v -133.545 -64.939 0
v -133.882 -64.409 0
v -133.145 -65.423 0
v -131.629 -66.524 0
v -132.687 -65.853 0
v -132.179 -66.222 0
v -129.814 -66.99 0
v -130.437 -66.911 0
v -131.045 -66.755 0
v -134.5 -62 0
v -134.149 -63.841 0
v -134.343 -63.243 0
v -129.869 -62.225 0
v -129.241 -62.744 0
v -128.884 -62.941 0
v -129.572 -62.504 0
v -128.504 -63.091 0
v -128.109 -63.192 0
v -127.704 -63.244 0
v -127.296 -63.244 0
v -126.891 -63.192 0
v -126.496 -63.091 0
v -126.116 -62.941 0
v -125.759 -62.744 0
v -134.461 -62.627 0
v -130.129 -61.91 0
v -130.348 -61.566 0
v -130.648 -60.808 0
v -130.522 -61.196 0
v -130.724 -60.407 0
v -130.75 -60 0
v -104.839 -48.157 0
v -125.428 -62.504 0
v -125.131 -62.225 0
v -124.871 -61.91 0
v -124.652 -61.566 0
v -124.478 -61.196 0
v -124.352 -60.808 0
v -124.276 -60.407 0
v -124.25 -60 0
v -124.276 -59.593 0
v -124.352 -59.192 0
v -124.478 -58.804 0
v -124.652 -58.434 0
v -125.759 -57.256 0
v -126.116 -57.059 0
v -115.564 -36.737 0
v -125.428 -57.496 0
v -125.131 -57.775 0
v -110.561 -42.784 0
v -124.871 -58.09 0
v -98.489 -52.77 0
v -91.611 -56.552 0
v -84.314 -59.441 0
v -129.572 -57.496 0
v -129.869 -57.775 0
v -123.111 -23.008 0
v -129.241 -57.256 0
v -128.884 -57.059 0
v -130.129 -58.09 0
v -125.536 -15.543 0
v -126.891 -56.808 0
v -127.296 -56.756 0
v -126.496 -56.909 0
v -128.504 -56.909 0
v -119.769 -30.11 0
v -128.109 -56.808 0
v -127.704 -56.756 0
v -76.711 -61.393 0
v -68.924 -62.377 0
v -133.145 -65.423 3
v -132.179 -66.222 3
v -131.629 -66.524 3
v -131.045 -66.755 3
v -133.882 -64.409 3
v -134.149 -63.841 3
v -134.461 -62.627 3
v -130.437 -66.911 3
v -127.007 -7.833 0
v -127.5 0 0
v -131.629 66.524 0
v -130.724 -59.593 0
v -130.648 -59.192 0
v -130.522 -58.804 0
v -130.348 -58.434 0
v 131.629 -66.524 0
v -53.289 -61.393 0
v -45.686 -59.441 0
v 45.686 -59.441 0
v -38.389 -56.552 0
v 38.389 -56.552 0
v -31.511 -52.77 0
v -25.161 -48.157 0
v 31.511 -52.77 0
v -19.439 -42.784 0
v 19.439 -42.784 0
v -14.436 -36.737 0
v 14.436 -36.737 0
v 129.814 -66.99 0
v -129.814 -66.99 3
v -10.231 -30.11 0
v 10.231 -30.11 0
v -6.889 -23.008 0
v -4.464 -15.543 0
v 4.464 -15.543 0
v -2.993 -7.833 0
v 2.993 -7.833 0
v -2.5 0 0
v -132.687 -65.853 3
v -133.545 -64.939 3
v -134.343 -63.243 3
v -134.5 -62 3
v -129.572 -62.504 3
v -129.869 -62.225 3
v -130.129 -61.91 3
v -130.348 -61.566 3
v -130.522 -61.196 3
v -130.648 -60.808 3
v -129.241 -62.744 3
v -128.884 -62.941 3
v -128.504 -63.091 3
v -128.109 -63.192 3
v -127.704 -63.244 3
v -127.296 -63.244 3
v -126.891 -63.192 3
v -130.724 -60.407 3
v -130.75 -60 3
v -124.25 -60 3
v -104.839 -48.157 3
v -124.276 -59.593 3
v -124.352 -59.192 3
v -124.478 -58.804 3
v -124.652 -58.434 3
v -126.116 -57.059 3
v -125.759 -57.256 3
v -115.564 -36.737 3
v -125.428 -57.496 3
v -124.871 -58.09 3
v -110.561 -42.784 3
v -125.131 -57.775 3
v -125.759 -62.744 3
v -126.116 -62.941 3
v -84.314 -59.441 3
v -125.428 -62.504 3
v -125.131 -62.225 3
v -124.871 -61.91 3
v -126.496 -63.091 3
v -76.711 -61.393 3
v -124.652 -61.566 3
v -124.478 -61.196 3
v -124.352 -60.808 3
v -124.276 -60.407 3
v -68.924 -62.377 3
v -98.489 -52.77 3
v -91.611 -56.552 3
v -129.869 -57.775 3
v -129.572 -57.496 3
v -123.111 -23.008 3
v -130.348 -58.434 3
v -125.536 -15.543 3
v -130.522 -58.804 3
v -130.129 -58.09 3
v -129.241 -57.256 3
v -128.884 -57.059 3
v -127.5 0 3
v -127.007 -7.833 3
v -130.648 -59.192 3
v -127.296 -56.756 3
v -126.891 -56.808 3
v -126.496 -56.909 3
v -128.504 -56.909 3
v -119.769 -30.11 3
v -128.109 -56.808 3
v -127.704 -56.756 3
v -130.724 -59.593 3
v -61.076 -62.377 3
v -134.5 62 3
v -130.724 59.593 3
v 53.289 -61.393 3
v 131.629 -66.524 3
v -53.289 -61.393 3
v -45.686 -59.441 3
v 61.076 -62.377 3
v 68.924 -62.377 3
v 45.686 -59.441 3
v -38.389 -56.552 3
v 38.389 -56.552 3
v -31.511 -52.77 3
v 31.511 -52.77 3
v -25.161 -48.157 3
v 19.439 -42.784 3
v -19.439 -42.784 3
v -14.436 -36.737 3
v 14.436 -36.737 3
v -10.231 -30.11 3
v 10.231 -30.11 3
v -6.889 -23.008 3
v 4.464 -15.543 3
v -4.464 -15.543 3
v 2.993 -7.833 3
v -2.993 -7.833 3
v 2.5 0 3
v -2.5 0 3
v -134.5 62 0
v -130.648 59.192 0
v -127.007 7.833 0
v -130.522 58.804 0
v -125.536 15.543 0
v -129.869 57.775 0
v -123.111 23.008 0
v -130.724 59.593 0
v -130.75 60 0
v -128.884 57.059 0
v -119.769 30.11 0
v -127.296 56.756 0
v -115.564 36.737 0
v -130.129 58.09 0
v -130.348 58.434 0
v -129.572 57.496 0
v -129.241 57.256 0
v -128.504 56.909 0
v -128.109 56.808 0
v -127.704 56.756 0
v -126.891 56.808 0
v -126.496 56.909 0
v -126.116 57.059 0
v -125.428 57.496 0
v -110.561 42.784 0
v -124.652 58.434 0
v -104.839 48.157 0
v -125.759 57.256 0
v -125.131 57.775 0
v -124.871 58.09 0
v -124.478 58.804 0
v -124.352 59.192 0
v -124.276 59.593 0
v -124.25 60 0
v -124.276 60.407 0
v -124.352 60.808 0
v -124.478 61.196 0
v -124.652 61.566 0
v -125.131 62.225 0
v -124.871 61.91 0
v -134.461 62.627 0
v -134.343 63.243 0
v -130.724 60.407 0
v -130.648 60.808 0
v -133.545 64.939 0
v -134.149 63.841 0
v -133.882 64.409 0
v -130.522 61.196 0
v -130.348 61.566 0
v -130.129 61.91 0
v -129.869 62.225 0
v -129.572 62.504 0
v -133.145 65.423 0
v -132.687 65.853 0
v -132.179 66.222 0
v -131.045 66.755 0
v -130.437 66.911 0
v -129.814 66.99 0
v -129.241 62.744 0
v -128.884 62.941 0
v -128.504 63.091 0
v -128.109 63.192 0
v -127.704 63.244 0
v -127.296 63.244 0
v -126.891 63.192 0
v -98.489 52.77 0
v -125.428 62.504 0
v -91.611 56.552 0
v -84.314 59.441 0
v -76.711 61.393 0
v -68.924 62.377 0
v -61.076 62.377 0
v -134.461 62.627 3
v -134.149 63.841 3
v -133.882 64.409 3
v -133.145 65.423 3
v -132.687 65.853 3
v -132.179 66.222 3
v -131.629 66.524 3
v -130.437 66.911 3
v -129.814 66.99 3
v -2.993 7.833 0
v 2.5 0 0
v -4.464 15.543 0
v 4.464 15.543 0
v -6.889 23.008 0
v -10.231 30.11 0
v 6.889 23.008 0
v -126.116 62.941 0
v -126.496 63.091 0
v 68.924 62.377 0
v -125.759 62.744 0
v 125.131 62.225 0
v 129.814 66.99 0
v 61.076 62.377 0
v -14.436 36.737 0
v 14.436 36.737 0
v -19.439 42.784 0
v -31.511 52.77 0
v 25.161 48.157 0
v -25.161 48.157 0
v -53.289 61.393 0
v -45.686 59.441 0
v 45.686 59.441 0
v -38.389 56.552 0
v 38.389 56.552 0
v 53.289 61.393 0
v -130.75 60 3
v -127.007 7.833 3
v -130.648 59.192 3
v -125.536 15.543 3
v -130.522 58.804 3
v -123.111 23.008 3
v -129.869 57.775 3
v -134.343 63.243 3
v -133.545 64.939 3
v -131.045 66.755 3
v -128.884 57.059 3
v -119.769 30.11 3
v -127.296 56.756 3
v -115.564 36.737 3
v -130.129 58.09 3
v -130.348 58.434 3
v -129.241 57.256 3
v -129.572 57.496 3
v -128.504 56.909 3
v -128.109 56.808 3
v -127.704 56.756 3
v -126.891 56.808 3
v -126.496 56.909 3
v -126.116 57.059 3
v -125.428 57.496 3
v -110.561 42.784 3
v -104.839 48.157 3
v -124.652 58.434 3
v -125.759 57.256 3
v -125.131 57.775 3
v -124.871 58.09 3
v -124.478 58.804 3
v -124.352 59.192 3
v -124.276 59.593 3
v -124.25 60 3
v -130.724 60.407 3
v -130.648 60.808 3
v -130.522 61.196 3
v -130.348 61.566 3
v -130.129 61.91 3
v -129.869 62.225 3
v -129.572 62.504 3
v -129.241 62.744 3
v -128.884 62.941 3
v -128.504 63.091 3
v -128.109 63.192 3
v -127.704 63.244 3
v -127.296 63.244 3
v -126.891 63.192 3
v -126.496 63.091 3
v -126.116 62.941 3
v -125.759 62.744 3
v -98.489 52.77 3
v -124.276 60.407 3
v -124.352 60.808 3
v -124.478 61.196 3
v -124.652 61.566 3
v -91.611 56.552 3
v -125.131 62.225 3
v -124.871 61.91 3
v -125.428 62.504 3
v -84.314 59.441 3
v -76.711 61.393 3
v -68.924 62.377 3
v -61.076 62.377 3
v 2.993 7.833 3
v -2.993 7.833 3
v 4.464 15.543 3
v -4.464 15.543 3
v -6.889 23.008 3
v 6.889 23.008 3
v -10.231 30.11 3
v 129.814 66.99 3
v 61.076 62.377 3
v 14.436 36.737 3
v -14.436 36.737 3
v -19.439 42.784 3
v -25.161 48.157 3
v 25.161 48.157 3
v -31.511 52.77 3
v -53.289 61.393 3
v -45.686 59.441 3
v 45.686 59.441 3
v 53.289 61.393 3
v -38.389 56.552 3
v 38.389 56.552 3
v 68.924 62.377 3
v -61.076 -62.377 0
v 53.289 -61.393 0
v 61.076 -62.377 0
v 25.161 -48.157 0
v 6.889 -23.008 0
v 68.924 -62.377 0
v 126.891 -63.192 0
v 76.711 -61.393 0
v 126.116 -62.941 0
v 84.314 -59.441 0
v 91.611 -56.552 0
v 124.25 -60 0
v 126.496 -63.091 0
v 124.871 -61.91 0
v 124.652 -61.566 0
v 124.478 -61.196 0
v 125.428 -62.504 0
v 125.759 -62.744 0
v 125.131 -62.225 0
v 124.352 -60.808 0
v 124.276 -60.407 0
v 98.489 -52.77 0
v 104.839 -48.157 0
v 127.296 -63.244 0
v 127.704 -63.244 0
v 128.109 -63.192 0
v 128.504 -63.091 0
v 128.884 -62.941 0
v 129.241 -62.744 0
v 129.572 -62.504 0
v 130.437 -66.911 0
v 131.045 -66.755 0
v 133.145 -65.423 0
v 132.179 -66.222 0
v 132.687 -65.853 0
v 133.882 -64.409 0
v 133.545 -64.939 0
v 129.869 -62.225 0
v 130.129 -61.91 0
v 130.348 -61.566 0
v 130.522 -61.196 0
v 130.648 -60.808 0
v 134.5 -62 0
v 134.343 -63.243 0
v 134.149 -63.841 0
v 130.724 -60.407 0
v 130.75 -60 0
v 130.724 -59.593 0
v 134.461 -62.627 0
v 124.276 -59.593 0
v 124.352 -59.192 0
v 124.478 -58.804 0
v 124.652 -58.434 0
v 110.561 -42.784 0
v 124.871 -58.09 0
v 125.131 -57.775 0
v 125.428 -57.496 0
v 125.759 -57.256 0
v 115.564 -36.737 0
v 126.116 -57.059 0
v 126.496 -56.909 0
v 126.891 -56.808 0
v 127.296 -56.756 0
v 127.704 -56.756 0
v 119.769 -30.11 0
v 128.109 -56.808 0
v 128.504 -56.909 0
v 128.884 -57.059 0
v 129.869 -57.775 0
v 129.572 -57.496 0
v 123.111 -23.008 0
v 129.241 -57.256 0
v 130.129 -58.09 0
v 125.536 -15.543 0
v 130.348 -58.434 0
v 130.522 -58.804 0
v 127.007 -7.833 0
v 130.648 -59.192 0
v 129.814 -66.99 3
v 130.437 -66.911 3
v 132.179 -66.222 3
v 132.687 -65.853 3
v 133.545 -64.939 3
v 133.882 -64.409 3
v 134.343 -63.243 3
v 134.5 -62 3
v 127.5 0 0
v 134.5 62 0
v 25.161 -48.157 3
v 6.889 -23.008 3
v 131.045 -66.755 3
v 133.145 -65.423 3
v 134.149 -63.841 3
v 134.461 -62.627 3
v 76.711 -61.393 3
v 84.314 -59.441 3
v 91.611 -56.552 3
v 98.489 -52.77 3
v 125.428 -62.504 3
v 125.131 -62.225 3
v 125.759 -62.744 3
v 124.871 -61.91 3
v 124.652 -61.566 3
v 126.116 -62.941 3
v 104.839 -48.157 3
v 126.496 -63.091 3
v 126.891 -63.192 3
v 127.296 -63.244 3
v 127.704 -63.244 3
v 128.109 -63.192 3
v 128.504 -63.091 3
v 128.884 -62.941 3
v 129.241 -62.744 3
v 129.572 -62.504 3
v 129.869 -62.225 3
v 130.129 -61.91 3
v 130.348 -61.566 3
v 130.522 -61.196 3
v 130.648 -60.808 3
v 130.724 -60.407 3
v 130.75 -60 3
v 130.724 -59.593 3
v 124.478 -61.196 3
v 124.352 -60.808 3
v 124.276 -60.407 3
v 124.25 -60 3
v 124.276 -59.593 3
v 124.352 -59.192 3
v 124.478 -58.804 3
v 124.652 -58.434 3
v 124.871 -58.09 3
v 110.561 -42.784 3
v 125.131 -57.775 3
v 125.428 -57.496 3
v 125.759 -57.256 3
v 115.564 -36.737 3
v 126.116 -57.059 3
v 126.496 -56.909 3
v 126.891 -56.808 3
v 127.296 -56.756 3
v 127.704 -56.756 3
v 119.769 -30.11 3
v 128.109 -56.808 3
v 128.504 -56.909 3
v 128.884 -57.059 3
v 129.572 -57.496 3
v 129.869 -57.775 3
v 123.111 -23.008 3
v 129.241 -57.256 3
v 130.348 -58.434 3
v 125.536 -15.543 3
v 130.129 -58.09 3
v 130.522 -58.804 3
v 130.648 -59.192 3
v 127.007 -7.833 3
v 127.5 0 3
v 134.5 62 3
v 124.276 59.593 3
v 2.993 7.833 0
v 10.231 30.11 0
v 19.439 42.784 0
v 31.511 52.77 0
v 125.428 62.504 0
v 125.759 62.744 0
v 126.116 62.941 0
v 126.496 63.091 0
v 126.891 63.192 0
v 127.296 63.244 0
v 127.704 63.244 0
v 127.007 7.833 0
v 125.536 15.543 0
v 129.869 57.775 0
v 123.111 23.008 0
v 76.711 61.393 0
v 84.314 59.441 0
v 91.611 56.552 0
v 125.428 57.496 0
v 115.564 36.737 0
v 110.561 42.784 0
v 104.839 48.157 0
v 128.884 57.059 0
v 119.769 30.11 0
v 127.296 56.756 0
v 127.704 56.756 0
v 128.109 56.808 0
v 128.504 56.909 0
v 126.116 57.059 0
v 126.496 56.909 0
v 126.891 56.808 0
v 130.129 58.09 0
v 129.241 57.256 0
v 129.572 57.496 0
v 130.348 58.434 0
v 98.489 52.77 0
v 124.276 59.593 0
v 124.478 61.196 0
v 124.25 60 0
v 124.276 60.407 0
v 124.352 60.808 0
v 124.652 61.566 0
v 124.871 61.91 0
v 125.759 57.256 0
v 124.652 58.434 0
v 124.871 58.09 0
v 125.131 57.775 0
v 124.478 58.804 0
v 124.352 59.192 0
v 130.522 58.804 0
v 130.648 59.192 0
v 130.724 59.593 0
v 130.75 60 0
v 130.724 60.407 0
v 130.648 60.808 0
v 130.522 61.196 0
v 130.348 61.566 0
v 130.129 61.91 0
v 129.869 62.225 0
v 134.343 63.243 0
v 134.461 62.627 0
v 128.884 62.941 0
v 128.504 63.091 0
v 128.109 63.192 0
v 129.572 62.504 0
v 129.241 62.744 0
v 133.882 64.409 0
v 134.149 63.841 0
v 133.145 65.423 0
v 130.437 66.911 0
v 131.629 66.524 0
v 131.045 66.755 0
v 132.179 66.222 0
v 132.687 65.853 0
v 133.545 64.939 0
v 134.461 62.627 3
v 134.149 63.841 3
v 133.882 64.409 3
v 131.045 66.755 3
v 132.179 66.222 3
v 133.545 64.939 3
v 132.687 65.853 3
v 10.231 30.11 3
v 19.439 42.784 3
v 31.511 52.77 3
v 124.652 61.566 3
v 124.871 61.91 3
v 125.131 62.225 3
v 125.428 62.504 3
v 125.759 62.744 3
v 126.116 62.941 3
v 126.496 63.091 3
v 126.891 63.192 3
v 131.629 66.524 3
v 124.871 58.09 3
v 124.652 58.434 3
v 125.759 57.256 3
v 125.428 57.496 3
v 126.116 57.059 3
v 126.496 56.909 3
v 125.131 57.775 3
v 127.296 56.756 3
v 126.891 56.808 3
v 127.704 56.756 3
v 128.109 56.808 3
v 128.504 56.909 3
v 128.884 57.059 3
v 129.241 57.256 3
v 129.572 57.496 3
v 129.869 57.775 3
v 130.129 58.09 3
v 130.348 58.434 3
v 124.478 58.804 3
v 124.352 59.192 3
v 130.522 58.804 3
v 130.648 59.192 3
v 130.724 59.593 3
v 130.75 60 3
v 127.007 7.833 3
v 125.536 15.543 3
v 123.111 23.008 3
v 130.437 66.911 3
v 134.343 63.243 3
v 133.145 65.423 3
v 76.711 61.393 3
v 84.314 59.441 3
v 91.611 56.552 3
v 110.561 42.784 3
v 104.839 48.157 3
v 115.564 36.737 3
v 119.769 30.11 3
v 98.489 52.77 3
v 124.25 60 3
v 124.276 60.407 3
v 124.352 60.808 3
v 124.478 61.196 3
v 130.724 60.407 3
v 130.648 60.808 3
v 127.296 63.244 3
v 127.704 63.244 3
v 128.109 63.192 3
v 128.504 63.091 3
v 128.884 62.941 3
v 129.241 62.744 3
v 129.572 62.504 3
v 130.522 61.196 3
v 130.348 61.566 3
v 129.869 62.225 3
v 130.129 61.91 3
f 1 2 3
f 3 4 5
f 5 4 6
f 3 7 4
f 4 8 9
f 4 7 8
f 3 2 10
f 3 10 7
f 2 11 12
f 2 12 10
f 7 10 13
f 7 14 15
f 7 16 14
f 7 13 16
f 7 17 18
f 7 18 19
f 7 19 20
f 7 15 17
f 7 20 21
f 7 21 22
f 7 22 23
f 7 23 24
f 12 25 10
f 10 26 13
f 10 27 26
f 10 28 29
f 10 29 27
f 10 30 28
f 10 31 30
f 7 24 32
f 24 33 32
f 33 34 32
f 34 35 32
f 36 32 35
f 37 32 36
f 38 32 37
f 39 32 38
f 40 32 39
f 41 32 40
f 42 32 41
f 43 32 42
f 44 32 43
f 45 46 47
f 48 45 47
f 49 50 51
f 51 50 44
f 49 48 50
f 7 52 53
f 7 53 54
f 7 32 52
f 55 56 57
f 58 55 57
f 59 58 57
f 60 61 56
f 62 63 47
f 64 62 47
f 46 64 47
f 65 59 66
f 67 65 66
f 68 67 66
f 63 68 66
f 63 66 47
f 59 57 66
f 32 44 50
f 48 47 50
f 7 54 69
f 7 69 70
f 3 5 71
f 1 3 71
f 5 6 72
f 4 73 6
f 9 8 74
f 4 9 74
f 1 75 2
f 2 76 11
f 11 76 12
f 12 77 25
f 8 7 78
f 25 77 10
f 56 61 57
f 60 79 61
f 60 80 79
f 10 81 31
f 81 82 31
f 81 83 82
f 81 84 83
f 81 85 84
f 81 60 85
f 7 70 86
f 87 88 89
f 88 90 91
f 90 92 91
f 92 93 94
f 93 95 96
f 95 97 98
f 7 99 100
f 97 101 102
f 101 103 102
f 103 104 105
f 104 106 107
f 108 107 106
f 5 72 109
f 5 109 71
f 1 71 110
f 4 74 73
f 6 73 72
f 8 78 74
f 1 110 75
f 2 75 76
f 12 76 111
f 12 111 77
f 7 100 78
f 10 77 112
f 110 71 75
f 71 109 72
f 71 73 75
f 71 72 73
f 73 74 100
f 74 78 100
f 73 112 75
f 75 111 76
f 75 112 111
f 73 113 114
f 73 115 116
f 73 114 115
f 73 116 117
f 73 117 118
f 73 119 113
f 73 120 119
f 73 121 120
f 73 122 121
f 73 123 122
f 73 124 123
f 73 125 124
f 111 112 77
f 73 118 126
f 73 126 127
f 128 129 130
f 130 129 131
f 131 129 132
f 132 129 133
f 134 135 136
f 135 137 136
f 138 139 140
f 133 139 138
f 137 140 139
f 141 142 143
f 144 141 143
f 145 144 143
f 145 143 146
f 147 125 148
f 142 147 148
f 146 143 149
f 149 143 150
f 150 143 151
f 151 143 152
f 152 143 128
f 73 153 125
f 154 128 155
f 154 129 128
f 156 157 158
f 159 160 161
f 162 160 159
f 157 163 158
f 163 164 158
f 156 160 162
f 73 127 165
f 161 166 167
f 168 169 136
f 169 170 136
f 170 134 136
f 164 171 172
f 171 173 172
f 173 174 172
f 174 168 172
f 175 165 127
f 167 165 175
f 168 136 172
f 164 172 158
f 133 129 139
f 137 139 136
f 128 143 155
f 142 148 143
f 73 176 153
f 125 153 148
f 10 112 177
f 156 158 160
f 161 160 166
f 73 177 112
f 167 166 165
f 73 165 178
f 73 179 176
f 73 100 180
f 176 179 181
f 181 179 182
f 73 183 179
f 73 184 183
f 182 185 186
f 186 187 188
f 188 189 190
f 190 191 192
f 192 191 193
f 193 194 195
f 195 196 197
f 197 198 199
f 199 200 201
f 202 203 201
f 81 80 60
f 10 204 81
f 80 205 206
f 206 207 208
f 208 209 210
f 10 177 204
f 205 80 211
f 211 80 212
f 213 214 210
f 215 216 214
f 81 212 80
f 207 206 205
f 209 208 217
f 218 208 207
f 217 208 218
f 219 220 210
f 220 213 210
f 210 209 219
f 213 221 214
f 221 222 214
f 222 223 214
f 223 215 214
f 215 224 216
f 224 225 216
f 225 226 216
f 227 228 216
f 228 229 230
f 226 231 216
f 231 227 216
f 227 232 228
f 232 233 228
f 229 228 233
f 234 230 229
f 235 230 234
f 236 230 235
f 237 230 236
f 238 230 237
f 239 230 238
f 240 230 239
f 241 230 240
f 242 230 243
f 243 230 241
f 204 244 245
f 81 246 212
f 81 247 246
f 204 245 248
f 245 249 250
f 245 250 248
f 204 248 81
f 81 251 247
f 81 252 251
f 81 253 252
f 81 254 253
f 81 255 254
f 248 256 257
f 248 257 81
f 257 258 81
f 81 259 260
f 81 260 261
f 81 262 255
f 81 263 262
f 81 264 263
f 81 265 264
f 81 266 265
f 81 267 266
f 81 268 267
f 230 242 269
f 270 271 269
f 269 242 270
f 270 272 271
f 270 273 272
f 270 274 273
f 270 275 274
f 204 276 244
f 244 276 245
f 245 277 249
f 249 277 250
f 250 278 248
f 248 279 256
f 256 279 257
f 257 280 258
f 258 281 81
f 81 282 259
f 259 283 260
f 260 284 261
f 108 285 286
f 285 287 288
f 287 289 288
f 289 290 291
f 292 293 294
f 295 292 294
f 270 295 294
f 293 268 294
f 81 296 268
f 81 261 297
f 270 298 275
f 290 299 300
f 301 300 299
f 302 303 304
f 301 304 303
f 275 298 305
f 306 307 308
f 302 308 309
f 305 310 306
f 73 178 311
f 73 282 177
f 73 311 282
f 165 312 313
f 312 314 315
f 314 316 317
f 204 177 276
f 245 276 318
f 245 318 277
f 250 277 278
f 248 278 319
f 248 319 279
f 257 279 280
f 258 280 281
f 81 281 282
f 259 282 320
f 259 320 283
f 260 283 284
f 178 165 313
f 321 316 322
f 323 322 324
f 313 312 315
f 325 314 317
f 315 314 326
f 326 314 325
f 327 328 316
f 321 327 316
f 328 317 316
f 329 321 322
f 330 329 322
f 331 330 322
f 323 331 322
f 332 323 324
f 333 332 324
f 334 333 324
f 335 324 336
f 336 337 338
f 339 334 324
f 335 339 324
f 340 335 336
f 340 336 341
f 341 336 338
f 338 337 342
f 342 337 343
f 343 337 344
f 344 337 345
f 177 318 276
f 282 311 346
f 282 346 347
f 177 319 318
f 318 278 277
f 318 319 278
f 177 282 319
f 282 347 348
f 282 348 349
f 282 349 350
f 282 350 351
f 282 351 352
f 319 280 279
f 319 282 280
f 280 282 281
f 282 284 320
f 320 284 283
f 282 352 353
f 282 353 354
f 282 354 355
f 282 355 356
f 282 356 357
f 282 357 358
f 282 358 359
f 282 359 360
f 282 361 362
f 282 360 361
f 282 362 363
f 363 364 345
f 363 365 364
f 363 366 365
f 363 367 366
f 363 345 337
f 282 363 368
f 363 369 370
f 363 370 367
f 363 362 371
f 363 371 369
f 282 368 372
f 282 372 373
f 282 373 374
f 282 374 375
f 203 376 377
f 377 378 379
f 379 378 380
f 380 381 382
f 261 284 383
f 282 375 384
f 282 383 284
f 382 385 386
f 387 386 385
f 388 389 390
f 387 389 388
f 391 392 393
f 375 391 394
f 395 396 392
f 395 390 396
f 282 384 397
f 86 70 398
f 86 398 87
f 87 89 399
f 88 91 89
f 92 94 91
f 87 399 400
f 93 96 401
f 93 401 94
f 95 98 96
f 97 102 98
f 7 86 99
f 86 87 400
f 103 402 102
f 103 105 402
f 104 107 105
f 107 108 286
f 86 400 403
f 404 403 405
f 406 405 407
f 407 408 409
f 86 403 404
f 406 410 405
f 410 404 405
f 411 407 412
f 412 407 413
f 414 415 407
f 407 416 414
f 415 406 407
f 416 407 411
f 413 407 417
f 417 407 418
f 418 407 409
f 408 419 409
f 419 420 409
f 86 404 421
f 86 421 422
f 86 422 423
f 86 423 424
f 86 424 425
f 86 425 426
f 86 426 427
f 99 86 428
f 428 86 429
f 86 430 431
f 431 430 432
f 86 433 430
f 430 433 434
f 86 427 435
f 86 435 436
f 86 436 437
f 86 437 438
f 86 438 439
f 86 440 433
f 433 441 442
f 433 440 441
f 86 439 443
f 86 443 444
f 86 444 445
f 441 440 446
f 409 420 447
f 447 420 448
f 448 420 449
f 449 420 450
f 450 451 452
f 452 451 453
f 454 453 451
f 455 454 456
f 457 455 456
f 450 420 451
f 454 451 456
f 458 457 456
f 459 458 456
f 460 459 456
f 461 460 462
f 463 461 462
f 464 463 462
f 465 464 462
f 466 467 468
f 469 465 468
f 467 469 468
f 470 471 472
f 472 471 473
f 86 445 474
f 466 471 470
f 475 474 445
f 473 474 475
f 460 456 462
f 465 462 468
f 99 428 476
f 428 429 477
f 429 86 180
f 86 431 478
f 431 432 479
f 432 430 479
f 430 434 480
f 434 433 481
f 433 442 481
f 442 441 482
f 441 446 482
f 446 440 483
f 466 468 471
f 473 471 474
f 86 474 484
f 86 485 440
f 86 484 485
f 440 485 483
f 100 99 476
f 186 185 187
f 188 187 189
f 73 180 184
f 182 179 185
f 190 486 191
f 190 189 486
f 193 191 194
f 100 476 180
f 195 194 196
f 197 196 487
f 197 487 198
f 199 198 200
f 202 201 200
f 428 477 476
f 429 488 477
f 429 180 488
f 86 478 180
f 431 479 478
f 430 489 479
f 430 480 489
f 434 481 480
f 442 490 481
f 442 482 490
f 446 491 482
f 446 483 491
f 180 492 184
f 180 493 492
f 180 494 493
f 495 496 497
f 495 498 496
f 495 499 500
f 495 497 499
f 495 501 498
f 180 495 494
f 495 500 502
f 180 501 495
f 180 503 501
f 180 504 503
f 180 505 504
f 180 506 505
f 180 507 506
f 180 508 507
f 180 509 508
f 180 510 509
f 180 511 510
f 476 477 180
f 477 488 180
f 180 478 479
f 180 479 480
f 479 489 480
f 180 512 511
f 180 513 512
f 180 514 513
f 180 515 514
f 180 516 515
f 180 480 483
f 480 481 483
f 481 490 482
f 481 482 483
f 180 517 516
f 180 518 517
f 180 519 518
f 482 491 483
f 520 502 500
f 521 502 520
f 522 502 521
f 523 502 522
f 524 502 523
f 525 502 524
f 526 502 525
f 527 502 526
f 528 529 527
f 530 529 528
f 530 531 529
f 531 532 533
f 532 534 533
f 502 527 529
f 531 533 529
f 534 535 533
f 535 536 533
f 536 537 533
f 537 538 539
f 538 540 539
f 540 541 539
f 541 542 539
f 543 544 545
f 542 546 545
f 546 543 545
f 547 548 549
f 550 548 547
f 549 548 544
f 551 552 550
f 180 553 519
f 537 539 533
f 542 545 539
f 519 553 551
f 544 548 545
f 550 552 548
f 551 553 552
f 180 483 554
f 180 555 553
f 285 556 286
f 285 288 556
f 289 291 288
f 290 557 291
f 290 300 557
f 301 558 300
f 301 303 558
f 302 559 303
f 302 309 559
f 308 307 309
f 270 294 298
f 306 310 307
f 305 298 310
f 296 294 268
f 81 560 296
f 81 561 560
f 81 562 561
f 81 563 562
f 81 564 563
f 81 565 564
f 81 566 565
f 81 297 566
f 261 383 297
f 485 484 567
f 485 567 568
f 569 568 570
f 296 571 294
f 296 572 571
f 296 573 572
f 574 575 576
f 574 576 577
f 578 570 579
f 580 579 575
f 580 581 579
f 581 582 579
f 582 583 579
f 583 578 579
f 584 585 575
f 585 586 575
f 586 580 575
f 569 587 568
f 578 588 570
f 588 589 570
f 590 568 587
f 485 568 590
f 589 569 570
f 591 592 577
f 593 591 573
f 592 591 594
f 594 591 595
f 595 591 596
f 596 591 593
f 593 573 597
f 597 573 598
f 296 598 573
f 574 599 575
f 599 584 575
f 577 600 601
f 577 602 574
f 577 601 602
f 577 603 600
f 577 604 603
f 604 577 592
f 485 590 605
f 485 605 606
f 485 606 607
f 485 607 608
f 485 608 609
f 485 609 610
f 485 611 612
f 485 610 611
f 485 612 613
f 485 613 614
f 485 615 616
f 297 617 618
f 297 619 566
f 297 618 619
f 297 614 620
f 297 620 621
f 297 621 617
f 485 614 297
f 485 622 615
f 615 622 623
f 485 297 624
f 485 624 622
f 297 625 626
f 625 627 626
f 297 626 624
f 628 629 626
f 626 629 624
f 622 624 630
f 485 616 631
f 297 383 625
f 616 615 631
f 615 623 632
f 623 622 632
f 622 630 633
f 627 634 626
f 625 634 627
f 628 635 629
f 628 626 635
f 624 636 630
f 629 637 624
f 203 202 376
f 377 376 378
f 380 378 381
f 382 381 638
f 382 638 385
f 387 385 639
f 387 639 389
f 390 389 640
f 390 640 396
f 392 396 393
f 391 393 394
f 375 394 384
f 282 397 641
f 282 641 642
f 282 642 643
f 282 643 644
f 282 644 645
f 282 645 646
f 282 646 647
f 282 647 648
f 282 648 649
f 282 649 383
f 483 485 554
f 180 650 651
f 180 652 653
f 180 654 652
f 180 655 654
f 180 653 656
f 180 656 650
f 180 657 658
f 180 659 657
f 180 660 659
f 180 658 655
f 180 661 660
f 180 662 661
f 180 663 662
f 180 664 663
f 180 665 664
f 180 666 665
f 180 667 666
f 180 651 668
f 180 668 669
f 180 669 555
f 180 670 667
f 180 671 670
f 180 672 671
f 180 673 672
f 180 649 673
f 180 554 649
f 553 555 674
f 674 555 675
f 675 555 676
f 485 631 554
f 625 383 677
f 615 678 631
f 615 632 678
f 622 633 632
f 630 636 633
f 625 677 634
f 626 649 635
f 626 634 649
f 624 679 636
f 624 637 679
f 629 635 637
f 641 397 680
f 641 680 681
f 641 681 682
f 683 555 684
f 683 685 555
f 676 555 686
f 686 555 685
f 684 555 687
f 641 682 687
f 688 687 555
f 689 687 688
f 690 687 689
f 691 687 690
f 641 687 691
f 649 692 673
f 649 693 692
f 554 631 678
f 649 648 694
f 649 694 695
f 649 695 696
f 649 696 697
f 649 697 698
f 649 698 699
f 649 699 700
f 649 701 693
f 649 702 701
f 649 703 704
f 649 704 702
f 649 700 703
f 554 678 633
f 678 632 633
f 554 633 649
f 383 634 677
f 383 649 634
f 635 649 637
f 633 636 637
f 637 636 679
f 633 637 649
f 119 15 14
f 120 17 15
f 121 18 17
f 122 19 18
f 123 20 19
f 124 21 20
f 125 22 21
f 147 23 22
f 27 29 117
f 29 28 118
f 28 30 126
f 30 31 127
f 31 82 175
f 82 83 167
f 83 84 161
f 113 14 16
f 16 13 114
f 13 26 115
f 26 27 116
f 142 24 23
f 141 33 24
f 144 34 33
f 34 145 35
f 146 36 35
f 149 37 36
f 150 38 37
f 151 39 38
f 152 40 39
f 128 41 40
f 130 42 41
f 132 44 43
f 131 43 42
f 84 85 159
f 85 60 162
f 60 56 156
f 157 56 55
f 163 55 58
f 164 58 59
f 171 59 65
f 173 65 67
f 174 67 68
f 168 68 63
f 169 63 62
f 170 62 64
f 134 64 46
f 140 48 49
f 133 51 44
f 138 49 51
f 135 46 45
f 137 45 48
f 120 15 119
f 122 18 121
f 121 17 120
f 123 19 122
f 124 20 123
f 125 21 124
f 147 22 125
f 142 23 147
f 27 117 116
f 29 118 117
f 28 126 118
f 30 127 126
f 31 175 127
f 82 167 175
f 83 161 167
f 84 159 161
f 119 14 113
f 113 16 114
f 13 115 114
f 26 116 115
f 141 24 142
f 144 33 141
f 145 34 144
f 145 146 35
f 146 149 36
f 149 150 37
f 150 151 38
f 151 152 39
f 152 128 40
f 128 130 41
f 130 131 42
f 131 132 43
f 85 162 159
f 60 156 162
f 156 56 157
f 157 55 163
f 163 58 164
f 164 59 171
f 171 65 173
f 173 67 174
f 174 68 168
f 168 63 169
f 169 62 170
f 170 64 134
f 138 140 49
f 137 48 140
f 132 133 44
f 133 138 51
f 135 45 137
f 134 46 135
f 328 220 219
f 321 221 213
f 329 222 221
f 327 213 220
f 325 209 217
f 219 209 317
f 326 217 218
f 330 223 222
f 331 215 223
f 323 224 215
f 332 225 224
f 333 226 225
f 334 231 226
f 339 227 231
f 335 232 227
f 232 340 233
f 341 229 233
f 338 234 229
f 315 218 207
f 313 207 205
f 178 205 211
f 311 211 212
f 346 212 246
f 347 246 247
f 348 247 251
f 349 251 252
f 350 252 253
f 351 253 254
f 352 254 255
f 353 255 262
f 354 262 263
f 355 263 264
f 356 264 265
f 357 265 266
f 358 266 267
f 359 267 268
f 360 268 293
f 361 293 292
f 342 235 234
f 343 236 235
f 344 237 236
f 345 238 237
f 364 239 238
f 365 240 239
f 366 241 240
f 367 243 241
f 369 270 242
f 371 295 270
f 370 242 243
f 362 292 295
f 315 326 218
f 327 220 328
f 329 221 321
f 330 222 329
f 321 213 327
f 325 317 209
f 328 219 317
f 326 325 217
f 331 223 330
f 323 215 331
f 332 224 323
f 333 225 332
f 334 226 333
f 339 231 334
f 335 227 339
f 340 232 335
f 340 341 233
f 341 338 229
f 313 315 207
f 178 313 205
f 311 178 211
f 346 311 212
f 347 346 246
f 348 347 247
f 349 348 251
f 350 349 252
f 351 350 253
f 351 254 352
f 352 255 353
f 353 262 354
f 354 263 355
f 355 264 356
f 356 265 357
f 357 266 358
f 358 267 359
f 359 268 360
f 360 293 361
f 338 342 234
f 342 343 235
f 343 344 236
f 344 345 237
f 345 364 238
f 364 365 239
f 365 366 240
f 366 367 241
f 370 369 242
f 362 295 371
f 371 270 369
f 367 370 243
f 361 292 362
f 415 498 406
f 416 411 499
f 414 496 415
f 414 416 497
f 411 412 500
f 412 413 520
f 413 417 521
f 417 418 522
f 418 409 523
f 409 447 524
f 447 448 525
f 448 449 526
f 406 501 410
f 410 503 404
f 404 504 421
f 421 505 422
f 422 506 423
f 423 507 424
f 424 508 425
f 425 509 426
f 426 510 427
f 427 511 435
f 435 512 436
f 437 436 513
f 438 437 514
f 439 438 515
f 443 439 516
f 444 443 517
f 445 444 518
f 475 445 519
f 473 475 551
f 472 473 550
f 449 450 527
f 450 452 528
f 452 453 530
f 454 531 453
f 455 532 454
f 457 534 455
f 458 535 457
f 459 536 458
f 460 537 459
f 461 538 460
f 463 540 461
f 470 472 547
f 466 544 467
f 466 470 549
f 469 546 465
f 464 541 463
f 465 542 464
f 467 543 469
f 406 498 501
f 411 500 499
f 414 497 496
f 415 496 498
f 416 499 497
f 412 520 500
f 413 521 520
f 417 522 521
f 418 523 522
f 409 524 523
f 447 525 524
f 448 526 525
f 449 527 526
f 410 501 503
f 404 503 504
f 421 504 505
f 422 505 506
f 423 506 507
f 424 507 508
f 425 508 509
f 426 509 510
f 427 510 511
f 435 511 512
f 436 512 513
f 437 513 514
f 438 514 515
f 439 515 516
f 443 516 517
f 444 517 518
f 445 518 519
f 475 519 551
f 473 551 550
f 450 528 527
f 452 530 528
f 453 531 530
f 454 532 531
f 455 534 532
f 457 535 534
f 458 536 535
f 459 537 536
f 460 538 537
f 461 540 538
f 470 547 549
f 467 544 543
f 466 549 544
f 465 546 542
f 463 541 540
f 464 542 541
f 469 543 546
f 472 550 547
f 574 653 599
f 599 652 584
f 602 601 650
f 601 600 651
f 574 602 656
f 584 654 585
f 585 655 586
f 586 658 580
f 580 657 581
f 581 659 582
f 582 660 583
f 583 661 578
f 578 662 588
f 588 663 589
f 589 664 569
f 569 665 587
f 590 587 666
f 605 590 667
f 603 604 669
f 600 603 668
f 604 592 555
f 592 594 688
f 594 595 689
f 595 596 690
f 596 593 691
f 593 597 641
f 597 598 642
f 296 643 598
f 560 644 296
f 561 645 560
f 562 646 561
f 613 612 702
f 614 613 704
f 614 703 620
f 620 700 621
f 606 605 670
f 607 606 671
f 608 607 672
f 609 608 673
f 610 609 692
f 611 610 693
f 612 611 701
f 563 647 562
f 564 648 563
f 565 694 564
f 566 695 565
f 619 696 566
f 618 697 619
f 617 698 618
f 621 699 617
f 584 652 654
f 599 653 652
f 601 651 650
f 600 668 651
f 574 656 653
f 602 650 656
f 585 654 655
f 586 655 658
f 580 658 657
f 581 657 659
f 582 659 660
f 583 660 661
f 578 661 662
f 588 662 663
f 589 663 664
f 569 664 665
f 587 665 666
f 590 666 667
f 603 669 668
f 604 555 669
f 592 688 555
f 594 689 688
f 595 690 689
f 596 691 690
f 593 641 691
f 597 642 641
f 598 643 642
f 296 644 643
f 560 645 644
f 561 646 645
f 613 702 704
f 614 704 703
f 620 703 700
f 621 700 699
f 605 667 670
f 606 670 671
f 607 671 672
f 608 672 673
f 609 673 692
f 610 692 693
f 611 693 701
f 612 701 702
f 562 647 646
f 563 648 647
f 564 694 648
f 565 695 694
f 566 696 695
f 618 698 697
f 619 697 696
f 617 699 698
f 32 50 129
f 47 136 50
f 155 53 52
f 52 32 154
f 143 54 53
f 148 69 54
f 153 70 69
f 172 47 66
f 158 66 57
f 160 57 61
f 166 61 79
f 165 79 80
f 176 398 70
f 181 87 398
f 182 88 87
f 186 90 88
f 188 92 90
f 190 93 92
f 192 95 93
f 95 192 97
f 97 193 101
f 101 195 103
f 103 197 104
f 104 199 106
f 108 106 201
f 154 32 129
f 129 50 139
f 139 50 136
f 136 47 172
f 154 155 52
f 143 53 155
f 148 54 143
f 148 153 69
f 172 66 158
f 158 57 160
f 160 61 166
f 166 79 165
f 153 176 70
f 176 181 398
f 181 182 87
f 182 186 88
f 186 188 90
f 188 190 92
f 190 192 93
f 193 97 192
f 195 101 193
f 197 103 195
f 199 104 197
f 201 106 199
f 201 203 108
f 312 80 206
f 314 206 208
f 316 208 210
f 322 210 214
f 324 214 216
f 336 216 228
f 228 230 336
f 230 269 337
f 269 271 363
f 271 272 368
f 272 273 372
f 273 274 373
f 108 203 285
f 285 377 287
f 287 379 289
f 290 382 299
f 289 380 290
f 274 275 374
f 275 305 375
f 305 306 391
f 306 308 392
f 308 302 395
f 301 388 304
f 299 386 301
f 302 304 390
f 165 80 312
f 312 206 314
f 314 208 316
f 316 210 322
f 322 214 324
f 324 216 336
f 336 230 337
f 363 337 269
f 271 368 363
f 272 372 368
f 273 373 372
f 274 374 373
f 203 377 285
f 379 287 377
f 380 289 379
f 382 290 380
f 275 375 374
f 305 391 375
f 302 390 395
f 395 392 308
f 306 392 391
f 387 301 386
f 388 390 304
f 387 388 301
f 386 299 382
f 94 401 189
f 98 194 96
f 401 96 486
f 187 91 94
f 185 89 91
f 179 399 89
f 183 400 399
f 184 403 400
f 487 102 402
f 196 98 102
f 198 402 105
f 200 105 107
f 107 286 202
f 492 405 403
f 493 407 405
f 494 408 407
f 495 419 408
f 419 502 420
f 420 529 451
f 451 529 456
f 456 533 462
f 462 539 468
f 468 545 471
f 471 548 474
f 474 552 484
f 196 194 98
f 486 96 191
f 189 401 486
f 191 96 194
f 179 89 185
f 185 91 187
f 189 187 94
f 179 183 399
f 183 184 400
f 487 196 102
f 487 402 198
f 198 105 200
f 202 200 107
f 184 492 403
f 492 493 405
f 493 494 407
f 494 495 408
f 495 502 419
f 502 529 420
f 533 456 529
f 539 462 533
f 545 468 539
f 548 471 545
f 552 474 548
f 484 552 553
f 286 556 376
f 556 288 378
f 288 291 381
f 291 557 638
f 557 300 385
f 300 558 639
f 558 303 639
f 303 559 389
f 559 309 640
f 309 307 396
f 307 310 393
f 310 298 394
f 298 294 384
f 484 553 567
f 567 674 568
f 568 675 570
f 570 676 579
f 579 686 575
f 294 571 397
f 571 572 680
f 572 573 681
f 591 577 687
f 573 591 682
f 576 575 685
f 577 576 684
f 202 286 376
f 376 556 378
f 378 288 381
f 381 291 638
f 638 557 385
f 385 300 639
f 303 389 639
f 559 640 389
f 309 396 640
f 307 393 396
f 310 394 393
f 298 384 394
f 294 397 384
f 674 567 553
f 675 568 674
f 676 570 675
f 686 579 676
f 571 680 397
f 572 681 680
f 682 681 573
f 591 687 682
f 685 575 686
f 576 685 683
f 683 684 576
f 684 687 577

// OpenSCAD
$fn = 50;

difference() {
	union() {
		hull() {
			translate(v = [-129.5, 62.0, 0]) {
				cylinder(h = 3, r = 5);
			}
			translate(v = [129.5, 62.0, 0]) {
				cylinder(h = 3, r = 5);
			}
			translate(v = [-129.5, -62.0, 0]) {
				cylinder(h = 3, r = 5);
			}
			translate(v = [129.5, -62.0, 0]) {
				cylinder(h = 3, r = 5);
			}
		}
	}
	union() {
		translate(v = [-127.5, -60.0, -100.0]) {
			cylinder(h = 200, r = 3.25);
		}
		translate(v = [-127.5, 60.0, -100.0]) {
			cylinder(h = 200, r = 3.25);
		}
		translate(v = [127.5, -60.0, -100.0]) {
			cylinder(h = 200, r = 3.25);
		}
		translate(v = [127.5, 60.0, -100.0]) {
			cylinder(h = 200, r = 3.25);
		}
		translate(v = [-127.5, -60.0, -100.0]) {
			cylinder(h = 200, r = 1.8);
		}
		translate(v = [-127.5, 60.0, -100.0]) {
			cylinder(h = 200, r = 1.8);
		}
		translate(v = [127.5, -60.0, -100.0]) {
			cylinder(h = 200, r = 1.8);
		}
		translate(v = [127.5, 60.0, -100.0]) {
			cylinder(h = 200, r = 1.8);
		}
		translate(v = [-65.0, 0, 0.0]) {
			cylinder(h = 3, r = 62.5);
		}
		translate(v = [65.0, 0, 0.0]) {
			cylinder(h = 3, r = 62.5);
		}
	}
}
